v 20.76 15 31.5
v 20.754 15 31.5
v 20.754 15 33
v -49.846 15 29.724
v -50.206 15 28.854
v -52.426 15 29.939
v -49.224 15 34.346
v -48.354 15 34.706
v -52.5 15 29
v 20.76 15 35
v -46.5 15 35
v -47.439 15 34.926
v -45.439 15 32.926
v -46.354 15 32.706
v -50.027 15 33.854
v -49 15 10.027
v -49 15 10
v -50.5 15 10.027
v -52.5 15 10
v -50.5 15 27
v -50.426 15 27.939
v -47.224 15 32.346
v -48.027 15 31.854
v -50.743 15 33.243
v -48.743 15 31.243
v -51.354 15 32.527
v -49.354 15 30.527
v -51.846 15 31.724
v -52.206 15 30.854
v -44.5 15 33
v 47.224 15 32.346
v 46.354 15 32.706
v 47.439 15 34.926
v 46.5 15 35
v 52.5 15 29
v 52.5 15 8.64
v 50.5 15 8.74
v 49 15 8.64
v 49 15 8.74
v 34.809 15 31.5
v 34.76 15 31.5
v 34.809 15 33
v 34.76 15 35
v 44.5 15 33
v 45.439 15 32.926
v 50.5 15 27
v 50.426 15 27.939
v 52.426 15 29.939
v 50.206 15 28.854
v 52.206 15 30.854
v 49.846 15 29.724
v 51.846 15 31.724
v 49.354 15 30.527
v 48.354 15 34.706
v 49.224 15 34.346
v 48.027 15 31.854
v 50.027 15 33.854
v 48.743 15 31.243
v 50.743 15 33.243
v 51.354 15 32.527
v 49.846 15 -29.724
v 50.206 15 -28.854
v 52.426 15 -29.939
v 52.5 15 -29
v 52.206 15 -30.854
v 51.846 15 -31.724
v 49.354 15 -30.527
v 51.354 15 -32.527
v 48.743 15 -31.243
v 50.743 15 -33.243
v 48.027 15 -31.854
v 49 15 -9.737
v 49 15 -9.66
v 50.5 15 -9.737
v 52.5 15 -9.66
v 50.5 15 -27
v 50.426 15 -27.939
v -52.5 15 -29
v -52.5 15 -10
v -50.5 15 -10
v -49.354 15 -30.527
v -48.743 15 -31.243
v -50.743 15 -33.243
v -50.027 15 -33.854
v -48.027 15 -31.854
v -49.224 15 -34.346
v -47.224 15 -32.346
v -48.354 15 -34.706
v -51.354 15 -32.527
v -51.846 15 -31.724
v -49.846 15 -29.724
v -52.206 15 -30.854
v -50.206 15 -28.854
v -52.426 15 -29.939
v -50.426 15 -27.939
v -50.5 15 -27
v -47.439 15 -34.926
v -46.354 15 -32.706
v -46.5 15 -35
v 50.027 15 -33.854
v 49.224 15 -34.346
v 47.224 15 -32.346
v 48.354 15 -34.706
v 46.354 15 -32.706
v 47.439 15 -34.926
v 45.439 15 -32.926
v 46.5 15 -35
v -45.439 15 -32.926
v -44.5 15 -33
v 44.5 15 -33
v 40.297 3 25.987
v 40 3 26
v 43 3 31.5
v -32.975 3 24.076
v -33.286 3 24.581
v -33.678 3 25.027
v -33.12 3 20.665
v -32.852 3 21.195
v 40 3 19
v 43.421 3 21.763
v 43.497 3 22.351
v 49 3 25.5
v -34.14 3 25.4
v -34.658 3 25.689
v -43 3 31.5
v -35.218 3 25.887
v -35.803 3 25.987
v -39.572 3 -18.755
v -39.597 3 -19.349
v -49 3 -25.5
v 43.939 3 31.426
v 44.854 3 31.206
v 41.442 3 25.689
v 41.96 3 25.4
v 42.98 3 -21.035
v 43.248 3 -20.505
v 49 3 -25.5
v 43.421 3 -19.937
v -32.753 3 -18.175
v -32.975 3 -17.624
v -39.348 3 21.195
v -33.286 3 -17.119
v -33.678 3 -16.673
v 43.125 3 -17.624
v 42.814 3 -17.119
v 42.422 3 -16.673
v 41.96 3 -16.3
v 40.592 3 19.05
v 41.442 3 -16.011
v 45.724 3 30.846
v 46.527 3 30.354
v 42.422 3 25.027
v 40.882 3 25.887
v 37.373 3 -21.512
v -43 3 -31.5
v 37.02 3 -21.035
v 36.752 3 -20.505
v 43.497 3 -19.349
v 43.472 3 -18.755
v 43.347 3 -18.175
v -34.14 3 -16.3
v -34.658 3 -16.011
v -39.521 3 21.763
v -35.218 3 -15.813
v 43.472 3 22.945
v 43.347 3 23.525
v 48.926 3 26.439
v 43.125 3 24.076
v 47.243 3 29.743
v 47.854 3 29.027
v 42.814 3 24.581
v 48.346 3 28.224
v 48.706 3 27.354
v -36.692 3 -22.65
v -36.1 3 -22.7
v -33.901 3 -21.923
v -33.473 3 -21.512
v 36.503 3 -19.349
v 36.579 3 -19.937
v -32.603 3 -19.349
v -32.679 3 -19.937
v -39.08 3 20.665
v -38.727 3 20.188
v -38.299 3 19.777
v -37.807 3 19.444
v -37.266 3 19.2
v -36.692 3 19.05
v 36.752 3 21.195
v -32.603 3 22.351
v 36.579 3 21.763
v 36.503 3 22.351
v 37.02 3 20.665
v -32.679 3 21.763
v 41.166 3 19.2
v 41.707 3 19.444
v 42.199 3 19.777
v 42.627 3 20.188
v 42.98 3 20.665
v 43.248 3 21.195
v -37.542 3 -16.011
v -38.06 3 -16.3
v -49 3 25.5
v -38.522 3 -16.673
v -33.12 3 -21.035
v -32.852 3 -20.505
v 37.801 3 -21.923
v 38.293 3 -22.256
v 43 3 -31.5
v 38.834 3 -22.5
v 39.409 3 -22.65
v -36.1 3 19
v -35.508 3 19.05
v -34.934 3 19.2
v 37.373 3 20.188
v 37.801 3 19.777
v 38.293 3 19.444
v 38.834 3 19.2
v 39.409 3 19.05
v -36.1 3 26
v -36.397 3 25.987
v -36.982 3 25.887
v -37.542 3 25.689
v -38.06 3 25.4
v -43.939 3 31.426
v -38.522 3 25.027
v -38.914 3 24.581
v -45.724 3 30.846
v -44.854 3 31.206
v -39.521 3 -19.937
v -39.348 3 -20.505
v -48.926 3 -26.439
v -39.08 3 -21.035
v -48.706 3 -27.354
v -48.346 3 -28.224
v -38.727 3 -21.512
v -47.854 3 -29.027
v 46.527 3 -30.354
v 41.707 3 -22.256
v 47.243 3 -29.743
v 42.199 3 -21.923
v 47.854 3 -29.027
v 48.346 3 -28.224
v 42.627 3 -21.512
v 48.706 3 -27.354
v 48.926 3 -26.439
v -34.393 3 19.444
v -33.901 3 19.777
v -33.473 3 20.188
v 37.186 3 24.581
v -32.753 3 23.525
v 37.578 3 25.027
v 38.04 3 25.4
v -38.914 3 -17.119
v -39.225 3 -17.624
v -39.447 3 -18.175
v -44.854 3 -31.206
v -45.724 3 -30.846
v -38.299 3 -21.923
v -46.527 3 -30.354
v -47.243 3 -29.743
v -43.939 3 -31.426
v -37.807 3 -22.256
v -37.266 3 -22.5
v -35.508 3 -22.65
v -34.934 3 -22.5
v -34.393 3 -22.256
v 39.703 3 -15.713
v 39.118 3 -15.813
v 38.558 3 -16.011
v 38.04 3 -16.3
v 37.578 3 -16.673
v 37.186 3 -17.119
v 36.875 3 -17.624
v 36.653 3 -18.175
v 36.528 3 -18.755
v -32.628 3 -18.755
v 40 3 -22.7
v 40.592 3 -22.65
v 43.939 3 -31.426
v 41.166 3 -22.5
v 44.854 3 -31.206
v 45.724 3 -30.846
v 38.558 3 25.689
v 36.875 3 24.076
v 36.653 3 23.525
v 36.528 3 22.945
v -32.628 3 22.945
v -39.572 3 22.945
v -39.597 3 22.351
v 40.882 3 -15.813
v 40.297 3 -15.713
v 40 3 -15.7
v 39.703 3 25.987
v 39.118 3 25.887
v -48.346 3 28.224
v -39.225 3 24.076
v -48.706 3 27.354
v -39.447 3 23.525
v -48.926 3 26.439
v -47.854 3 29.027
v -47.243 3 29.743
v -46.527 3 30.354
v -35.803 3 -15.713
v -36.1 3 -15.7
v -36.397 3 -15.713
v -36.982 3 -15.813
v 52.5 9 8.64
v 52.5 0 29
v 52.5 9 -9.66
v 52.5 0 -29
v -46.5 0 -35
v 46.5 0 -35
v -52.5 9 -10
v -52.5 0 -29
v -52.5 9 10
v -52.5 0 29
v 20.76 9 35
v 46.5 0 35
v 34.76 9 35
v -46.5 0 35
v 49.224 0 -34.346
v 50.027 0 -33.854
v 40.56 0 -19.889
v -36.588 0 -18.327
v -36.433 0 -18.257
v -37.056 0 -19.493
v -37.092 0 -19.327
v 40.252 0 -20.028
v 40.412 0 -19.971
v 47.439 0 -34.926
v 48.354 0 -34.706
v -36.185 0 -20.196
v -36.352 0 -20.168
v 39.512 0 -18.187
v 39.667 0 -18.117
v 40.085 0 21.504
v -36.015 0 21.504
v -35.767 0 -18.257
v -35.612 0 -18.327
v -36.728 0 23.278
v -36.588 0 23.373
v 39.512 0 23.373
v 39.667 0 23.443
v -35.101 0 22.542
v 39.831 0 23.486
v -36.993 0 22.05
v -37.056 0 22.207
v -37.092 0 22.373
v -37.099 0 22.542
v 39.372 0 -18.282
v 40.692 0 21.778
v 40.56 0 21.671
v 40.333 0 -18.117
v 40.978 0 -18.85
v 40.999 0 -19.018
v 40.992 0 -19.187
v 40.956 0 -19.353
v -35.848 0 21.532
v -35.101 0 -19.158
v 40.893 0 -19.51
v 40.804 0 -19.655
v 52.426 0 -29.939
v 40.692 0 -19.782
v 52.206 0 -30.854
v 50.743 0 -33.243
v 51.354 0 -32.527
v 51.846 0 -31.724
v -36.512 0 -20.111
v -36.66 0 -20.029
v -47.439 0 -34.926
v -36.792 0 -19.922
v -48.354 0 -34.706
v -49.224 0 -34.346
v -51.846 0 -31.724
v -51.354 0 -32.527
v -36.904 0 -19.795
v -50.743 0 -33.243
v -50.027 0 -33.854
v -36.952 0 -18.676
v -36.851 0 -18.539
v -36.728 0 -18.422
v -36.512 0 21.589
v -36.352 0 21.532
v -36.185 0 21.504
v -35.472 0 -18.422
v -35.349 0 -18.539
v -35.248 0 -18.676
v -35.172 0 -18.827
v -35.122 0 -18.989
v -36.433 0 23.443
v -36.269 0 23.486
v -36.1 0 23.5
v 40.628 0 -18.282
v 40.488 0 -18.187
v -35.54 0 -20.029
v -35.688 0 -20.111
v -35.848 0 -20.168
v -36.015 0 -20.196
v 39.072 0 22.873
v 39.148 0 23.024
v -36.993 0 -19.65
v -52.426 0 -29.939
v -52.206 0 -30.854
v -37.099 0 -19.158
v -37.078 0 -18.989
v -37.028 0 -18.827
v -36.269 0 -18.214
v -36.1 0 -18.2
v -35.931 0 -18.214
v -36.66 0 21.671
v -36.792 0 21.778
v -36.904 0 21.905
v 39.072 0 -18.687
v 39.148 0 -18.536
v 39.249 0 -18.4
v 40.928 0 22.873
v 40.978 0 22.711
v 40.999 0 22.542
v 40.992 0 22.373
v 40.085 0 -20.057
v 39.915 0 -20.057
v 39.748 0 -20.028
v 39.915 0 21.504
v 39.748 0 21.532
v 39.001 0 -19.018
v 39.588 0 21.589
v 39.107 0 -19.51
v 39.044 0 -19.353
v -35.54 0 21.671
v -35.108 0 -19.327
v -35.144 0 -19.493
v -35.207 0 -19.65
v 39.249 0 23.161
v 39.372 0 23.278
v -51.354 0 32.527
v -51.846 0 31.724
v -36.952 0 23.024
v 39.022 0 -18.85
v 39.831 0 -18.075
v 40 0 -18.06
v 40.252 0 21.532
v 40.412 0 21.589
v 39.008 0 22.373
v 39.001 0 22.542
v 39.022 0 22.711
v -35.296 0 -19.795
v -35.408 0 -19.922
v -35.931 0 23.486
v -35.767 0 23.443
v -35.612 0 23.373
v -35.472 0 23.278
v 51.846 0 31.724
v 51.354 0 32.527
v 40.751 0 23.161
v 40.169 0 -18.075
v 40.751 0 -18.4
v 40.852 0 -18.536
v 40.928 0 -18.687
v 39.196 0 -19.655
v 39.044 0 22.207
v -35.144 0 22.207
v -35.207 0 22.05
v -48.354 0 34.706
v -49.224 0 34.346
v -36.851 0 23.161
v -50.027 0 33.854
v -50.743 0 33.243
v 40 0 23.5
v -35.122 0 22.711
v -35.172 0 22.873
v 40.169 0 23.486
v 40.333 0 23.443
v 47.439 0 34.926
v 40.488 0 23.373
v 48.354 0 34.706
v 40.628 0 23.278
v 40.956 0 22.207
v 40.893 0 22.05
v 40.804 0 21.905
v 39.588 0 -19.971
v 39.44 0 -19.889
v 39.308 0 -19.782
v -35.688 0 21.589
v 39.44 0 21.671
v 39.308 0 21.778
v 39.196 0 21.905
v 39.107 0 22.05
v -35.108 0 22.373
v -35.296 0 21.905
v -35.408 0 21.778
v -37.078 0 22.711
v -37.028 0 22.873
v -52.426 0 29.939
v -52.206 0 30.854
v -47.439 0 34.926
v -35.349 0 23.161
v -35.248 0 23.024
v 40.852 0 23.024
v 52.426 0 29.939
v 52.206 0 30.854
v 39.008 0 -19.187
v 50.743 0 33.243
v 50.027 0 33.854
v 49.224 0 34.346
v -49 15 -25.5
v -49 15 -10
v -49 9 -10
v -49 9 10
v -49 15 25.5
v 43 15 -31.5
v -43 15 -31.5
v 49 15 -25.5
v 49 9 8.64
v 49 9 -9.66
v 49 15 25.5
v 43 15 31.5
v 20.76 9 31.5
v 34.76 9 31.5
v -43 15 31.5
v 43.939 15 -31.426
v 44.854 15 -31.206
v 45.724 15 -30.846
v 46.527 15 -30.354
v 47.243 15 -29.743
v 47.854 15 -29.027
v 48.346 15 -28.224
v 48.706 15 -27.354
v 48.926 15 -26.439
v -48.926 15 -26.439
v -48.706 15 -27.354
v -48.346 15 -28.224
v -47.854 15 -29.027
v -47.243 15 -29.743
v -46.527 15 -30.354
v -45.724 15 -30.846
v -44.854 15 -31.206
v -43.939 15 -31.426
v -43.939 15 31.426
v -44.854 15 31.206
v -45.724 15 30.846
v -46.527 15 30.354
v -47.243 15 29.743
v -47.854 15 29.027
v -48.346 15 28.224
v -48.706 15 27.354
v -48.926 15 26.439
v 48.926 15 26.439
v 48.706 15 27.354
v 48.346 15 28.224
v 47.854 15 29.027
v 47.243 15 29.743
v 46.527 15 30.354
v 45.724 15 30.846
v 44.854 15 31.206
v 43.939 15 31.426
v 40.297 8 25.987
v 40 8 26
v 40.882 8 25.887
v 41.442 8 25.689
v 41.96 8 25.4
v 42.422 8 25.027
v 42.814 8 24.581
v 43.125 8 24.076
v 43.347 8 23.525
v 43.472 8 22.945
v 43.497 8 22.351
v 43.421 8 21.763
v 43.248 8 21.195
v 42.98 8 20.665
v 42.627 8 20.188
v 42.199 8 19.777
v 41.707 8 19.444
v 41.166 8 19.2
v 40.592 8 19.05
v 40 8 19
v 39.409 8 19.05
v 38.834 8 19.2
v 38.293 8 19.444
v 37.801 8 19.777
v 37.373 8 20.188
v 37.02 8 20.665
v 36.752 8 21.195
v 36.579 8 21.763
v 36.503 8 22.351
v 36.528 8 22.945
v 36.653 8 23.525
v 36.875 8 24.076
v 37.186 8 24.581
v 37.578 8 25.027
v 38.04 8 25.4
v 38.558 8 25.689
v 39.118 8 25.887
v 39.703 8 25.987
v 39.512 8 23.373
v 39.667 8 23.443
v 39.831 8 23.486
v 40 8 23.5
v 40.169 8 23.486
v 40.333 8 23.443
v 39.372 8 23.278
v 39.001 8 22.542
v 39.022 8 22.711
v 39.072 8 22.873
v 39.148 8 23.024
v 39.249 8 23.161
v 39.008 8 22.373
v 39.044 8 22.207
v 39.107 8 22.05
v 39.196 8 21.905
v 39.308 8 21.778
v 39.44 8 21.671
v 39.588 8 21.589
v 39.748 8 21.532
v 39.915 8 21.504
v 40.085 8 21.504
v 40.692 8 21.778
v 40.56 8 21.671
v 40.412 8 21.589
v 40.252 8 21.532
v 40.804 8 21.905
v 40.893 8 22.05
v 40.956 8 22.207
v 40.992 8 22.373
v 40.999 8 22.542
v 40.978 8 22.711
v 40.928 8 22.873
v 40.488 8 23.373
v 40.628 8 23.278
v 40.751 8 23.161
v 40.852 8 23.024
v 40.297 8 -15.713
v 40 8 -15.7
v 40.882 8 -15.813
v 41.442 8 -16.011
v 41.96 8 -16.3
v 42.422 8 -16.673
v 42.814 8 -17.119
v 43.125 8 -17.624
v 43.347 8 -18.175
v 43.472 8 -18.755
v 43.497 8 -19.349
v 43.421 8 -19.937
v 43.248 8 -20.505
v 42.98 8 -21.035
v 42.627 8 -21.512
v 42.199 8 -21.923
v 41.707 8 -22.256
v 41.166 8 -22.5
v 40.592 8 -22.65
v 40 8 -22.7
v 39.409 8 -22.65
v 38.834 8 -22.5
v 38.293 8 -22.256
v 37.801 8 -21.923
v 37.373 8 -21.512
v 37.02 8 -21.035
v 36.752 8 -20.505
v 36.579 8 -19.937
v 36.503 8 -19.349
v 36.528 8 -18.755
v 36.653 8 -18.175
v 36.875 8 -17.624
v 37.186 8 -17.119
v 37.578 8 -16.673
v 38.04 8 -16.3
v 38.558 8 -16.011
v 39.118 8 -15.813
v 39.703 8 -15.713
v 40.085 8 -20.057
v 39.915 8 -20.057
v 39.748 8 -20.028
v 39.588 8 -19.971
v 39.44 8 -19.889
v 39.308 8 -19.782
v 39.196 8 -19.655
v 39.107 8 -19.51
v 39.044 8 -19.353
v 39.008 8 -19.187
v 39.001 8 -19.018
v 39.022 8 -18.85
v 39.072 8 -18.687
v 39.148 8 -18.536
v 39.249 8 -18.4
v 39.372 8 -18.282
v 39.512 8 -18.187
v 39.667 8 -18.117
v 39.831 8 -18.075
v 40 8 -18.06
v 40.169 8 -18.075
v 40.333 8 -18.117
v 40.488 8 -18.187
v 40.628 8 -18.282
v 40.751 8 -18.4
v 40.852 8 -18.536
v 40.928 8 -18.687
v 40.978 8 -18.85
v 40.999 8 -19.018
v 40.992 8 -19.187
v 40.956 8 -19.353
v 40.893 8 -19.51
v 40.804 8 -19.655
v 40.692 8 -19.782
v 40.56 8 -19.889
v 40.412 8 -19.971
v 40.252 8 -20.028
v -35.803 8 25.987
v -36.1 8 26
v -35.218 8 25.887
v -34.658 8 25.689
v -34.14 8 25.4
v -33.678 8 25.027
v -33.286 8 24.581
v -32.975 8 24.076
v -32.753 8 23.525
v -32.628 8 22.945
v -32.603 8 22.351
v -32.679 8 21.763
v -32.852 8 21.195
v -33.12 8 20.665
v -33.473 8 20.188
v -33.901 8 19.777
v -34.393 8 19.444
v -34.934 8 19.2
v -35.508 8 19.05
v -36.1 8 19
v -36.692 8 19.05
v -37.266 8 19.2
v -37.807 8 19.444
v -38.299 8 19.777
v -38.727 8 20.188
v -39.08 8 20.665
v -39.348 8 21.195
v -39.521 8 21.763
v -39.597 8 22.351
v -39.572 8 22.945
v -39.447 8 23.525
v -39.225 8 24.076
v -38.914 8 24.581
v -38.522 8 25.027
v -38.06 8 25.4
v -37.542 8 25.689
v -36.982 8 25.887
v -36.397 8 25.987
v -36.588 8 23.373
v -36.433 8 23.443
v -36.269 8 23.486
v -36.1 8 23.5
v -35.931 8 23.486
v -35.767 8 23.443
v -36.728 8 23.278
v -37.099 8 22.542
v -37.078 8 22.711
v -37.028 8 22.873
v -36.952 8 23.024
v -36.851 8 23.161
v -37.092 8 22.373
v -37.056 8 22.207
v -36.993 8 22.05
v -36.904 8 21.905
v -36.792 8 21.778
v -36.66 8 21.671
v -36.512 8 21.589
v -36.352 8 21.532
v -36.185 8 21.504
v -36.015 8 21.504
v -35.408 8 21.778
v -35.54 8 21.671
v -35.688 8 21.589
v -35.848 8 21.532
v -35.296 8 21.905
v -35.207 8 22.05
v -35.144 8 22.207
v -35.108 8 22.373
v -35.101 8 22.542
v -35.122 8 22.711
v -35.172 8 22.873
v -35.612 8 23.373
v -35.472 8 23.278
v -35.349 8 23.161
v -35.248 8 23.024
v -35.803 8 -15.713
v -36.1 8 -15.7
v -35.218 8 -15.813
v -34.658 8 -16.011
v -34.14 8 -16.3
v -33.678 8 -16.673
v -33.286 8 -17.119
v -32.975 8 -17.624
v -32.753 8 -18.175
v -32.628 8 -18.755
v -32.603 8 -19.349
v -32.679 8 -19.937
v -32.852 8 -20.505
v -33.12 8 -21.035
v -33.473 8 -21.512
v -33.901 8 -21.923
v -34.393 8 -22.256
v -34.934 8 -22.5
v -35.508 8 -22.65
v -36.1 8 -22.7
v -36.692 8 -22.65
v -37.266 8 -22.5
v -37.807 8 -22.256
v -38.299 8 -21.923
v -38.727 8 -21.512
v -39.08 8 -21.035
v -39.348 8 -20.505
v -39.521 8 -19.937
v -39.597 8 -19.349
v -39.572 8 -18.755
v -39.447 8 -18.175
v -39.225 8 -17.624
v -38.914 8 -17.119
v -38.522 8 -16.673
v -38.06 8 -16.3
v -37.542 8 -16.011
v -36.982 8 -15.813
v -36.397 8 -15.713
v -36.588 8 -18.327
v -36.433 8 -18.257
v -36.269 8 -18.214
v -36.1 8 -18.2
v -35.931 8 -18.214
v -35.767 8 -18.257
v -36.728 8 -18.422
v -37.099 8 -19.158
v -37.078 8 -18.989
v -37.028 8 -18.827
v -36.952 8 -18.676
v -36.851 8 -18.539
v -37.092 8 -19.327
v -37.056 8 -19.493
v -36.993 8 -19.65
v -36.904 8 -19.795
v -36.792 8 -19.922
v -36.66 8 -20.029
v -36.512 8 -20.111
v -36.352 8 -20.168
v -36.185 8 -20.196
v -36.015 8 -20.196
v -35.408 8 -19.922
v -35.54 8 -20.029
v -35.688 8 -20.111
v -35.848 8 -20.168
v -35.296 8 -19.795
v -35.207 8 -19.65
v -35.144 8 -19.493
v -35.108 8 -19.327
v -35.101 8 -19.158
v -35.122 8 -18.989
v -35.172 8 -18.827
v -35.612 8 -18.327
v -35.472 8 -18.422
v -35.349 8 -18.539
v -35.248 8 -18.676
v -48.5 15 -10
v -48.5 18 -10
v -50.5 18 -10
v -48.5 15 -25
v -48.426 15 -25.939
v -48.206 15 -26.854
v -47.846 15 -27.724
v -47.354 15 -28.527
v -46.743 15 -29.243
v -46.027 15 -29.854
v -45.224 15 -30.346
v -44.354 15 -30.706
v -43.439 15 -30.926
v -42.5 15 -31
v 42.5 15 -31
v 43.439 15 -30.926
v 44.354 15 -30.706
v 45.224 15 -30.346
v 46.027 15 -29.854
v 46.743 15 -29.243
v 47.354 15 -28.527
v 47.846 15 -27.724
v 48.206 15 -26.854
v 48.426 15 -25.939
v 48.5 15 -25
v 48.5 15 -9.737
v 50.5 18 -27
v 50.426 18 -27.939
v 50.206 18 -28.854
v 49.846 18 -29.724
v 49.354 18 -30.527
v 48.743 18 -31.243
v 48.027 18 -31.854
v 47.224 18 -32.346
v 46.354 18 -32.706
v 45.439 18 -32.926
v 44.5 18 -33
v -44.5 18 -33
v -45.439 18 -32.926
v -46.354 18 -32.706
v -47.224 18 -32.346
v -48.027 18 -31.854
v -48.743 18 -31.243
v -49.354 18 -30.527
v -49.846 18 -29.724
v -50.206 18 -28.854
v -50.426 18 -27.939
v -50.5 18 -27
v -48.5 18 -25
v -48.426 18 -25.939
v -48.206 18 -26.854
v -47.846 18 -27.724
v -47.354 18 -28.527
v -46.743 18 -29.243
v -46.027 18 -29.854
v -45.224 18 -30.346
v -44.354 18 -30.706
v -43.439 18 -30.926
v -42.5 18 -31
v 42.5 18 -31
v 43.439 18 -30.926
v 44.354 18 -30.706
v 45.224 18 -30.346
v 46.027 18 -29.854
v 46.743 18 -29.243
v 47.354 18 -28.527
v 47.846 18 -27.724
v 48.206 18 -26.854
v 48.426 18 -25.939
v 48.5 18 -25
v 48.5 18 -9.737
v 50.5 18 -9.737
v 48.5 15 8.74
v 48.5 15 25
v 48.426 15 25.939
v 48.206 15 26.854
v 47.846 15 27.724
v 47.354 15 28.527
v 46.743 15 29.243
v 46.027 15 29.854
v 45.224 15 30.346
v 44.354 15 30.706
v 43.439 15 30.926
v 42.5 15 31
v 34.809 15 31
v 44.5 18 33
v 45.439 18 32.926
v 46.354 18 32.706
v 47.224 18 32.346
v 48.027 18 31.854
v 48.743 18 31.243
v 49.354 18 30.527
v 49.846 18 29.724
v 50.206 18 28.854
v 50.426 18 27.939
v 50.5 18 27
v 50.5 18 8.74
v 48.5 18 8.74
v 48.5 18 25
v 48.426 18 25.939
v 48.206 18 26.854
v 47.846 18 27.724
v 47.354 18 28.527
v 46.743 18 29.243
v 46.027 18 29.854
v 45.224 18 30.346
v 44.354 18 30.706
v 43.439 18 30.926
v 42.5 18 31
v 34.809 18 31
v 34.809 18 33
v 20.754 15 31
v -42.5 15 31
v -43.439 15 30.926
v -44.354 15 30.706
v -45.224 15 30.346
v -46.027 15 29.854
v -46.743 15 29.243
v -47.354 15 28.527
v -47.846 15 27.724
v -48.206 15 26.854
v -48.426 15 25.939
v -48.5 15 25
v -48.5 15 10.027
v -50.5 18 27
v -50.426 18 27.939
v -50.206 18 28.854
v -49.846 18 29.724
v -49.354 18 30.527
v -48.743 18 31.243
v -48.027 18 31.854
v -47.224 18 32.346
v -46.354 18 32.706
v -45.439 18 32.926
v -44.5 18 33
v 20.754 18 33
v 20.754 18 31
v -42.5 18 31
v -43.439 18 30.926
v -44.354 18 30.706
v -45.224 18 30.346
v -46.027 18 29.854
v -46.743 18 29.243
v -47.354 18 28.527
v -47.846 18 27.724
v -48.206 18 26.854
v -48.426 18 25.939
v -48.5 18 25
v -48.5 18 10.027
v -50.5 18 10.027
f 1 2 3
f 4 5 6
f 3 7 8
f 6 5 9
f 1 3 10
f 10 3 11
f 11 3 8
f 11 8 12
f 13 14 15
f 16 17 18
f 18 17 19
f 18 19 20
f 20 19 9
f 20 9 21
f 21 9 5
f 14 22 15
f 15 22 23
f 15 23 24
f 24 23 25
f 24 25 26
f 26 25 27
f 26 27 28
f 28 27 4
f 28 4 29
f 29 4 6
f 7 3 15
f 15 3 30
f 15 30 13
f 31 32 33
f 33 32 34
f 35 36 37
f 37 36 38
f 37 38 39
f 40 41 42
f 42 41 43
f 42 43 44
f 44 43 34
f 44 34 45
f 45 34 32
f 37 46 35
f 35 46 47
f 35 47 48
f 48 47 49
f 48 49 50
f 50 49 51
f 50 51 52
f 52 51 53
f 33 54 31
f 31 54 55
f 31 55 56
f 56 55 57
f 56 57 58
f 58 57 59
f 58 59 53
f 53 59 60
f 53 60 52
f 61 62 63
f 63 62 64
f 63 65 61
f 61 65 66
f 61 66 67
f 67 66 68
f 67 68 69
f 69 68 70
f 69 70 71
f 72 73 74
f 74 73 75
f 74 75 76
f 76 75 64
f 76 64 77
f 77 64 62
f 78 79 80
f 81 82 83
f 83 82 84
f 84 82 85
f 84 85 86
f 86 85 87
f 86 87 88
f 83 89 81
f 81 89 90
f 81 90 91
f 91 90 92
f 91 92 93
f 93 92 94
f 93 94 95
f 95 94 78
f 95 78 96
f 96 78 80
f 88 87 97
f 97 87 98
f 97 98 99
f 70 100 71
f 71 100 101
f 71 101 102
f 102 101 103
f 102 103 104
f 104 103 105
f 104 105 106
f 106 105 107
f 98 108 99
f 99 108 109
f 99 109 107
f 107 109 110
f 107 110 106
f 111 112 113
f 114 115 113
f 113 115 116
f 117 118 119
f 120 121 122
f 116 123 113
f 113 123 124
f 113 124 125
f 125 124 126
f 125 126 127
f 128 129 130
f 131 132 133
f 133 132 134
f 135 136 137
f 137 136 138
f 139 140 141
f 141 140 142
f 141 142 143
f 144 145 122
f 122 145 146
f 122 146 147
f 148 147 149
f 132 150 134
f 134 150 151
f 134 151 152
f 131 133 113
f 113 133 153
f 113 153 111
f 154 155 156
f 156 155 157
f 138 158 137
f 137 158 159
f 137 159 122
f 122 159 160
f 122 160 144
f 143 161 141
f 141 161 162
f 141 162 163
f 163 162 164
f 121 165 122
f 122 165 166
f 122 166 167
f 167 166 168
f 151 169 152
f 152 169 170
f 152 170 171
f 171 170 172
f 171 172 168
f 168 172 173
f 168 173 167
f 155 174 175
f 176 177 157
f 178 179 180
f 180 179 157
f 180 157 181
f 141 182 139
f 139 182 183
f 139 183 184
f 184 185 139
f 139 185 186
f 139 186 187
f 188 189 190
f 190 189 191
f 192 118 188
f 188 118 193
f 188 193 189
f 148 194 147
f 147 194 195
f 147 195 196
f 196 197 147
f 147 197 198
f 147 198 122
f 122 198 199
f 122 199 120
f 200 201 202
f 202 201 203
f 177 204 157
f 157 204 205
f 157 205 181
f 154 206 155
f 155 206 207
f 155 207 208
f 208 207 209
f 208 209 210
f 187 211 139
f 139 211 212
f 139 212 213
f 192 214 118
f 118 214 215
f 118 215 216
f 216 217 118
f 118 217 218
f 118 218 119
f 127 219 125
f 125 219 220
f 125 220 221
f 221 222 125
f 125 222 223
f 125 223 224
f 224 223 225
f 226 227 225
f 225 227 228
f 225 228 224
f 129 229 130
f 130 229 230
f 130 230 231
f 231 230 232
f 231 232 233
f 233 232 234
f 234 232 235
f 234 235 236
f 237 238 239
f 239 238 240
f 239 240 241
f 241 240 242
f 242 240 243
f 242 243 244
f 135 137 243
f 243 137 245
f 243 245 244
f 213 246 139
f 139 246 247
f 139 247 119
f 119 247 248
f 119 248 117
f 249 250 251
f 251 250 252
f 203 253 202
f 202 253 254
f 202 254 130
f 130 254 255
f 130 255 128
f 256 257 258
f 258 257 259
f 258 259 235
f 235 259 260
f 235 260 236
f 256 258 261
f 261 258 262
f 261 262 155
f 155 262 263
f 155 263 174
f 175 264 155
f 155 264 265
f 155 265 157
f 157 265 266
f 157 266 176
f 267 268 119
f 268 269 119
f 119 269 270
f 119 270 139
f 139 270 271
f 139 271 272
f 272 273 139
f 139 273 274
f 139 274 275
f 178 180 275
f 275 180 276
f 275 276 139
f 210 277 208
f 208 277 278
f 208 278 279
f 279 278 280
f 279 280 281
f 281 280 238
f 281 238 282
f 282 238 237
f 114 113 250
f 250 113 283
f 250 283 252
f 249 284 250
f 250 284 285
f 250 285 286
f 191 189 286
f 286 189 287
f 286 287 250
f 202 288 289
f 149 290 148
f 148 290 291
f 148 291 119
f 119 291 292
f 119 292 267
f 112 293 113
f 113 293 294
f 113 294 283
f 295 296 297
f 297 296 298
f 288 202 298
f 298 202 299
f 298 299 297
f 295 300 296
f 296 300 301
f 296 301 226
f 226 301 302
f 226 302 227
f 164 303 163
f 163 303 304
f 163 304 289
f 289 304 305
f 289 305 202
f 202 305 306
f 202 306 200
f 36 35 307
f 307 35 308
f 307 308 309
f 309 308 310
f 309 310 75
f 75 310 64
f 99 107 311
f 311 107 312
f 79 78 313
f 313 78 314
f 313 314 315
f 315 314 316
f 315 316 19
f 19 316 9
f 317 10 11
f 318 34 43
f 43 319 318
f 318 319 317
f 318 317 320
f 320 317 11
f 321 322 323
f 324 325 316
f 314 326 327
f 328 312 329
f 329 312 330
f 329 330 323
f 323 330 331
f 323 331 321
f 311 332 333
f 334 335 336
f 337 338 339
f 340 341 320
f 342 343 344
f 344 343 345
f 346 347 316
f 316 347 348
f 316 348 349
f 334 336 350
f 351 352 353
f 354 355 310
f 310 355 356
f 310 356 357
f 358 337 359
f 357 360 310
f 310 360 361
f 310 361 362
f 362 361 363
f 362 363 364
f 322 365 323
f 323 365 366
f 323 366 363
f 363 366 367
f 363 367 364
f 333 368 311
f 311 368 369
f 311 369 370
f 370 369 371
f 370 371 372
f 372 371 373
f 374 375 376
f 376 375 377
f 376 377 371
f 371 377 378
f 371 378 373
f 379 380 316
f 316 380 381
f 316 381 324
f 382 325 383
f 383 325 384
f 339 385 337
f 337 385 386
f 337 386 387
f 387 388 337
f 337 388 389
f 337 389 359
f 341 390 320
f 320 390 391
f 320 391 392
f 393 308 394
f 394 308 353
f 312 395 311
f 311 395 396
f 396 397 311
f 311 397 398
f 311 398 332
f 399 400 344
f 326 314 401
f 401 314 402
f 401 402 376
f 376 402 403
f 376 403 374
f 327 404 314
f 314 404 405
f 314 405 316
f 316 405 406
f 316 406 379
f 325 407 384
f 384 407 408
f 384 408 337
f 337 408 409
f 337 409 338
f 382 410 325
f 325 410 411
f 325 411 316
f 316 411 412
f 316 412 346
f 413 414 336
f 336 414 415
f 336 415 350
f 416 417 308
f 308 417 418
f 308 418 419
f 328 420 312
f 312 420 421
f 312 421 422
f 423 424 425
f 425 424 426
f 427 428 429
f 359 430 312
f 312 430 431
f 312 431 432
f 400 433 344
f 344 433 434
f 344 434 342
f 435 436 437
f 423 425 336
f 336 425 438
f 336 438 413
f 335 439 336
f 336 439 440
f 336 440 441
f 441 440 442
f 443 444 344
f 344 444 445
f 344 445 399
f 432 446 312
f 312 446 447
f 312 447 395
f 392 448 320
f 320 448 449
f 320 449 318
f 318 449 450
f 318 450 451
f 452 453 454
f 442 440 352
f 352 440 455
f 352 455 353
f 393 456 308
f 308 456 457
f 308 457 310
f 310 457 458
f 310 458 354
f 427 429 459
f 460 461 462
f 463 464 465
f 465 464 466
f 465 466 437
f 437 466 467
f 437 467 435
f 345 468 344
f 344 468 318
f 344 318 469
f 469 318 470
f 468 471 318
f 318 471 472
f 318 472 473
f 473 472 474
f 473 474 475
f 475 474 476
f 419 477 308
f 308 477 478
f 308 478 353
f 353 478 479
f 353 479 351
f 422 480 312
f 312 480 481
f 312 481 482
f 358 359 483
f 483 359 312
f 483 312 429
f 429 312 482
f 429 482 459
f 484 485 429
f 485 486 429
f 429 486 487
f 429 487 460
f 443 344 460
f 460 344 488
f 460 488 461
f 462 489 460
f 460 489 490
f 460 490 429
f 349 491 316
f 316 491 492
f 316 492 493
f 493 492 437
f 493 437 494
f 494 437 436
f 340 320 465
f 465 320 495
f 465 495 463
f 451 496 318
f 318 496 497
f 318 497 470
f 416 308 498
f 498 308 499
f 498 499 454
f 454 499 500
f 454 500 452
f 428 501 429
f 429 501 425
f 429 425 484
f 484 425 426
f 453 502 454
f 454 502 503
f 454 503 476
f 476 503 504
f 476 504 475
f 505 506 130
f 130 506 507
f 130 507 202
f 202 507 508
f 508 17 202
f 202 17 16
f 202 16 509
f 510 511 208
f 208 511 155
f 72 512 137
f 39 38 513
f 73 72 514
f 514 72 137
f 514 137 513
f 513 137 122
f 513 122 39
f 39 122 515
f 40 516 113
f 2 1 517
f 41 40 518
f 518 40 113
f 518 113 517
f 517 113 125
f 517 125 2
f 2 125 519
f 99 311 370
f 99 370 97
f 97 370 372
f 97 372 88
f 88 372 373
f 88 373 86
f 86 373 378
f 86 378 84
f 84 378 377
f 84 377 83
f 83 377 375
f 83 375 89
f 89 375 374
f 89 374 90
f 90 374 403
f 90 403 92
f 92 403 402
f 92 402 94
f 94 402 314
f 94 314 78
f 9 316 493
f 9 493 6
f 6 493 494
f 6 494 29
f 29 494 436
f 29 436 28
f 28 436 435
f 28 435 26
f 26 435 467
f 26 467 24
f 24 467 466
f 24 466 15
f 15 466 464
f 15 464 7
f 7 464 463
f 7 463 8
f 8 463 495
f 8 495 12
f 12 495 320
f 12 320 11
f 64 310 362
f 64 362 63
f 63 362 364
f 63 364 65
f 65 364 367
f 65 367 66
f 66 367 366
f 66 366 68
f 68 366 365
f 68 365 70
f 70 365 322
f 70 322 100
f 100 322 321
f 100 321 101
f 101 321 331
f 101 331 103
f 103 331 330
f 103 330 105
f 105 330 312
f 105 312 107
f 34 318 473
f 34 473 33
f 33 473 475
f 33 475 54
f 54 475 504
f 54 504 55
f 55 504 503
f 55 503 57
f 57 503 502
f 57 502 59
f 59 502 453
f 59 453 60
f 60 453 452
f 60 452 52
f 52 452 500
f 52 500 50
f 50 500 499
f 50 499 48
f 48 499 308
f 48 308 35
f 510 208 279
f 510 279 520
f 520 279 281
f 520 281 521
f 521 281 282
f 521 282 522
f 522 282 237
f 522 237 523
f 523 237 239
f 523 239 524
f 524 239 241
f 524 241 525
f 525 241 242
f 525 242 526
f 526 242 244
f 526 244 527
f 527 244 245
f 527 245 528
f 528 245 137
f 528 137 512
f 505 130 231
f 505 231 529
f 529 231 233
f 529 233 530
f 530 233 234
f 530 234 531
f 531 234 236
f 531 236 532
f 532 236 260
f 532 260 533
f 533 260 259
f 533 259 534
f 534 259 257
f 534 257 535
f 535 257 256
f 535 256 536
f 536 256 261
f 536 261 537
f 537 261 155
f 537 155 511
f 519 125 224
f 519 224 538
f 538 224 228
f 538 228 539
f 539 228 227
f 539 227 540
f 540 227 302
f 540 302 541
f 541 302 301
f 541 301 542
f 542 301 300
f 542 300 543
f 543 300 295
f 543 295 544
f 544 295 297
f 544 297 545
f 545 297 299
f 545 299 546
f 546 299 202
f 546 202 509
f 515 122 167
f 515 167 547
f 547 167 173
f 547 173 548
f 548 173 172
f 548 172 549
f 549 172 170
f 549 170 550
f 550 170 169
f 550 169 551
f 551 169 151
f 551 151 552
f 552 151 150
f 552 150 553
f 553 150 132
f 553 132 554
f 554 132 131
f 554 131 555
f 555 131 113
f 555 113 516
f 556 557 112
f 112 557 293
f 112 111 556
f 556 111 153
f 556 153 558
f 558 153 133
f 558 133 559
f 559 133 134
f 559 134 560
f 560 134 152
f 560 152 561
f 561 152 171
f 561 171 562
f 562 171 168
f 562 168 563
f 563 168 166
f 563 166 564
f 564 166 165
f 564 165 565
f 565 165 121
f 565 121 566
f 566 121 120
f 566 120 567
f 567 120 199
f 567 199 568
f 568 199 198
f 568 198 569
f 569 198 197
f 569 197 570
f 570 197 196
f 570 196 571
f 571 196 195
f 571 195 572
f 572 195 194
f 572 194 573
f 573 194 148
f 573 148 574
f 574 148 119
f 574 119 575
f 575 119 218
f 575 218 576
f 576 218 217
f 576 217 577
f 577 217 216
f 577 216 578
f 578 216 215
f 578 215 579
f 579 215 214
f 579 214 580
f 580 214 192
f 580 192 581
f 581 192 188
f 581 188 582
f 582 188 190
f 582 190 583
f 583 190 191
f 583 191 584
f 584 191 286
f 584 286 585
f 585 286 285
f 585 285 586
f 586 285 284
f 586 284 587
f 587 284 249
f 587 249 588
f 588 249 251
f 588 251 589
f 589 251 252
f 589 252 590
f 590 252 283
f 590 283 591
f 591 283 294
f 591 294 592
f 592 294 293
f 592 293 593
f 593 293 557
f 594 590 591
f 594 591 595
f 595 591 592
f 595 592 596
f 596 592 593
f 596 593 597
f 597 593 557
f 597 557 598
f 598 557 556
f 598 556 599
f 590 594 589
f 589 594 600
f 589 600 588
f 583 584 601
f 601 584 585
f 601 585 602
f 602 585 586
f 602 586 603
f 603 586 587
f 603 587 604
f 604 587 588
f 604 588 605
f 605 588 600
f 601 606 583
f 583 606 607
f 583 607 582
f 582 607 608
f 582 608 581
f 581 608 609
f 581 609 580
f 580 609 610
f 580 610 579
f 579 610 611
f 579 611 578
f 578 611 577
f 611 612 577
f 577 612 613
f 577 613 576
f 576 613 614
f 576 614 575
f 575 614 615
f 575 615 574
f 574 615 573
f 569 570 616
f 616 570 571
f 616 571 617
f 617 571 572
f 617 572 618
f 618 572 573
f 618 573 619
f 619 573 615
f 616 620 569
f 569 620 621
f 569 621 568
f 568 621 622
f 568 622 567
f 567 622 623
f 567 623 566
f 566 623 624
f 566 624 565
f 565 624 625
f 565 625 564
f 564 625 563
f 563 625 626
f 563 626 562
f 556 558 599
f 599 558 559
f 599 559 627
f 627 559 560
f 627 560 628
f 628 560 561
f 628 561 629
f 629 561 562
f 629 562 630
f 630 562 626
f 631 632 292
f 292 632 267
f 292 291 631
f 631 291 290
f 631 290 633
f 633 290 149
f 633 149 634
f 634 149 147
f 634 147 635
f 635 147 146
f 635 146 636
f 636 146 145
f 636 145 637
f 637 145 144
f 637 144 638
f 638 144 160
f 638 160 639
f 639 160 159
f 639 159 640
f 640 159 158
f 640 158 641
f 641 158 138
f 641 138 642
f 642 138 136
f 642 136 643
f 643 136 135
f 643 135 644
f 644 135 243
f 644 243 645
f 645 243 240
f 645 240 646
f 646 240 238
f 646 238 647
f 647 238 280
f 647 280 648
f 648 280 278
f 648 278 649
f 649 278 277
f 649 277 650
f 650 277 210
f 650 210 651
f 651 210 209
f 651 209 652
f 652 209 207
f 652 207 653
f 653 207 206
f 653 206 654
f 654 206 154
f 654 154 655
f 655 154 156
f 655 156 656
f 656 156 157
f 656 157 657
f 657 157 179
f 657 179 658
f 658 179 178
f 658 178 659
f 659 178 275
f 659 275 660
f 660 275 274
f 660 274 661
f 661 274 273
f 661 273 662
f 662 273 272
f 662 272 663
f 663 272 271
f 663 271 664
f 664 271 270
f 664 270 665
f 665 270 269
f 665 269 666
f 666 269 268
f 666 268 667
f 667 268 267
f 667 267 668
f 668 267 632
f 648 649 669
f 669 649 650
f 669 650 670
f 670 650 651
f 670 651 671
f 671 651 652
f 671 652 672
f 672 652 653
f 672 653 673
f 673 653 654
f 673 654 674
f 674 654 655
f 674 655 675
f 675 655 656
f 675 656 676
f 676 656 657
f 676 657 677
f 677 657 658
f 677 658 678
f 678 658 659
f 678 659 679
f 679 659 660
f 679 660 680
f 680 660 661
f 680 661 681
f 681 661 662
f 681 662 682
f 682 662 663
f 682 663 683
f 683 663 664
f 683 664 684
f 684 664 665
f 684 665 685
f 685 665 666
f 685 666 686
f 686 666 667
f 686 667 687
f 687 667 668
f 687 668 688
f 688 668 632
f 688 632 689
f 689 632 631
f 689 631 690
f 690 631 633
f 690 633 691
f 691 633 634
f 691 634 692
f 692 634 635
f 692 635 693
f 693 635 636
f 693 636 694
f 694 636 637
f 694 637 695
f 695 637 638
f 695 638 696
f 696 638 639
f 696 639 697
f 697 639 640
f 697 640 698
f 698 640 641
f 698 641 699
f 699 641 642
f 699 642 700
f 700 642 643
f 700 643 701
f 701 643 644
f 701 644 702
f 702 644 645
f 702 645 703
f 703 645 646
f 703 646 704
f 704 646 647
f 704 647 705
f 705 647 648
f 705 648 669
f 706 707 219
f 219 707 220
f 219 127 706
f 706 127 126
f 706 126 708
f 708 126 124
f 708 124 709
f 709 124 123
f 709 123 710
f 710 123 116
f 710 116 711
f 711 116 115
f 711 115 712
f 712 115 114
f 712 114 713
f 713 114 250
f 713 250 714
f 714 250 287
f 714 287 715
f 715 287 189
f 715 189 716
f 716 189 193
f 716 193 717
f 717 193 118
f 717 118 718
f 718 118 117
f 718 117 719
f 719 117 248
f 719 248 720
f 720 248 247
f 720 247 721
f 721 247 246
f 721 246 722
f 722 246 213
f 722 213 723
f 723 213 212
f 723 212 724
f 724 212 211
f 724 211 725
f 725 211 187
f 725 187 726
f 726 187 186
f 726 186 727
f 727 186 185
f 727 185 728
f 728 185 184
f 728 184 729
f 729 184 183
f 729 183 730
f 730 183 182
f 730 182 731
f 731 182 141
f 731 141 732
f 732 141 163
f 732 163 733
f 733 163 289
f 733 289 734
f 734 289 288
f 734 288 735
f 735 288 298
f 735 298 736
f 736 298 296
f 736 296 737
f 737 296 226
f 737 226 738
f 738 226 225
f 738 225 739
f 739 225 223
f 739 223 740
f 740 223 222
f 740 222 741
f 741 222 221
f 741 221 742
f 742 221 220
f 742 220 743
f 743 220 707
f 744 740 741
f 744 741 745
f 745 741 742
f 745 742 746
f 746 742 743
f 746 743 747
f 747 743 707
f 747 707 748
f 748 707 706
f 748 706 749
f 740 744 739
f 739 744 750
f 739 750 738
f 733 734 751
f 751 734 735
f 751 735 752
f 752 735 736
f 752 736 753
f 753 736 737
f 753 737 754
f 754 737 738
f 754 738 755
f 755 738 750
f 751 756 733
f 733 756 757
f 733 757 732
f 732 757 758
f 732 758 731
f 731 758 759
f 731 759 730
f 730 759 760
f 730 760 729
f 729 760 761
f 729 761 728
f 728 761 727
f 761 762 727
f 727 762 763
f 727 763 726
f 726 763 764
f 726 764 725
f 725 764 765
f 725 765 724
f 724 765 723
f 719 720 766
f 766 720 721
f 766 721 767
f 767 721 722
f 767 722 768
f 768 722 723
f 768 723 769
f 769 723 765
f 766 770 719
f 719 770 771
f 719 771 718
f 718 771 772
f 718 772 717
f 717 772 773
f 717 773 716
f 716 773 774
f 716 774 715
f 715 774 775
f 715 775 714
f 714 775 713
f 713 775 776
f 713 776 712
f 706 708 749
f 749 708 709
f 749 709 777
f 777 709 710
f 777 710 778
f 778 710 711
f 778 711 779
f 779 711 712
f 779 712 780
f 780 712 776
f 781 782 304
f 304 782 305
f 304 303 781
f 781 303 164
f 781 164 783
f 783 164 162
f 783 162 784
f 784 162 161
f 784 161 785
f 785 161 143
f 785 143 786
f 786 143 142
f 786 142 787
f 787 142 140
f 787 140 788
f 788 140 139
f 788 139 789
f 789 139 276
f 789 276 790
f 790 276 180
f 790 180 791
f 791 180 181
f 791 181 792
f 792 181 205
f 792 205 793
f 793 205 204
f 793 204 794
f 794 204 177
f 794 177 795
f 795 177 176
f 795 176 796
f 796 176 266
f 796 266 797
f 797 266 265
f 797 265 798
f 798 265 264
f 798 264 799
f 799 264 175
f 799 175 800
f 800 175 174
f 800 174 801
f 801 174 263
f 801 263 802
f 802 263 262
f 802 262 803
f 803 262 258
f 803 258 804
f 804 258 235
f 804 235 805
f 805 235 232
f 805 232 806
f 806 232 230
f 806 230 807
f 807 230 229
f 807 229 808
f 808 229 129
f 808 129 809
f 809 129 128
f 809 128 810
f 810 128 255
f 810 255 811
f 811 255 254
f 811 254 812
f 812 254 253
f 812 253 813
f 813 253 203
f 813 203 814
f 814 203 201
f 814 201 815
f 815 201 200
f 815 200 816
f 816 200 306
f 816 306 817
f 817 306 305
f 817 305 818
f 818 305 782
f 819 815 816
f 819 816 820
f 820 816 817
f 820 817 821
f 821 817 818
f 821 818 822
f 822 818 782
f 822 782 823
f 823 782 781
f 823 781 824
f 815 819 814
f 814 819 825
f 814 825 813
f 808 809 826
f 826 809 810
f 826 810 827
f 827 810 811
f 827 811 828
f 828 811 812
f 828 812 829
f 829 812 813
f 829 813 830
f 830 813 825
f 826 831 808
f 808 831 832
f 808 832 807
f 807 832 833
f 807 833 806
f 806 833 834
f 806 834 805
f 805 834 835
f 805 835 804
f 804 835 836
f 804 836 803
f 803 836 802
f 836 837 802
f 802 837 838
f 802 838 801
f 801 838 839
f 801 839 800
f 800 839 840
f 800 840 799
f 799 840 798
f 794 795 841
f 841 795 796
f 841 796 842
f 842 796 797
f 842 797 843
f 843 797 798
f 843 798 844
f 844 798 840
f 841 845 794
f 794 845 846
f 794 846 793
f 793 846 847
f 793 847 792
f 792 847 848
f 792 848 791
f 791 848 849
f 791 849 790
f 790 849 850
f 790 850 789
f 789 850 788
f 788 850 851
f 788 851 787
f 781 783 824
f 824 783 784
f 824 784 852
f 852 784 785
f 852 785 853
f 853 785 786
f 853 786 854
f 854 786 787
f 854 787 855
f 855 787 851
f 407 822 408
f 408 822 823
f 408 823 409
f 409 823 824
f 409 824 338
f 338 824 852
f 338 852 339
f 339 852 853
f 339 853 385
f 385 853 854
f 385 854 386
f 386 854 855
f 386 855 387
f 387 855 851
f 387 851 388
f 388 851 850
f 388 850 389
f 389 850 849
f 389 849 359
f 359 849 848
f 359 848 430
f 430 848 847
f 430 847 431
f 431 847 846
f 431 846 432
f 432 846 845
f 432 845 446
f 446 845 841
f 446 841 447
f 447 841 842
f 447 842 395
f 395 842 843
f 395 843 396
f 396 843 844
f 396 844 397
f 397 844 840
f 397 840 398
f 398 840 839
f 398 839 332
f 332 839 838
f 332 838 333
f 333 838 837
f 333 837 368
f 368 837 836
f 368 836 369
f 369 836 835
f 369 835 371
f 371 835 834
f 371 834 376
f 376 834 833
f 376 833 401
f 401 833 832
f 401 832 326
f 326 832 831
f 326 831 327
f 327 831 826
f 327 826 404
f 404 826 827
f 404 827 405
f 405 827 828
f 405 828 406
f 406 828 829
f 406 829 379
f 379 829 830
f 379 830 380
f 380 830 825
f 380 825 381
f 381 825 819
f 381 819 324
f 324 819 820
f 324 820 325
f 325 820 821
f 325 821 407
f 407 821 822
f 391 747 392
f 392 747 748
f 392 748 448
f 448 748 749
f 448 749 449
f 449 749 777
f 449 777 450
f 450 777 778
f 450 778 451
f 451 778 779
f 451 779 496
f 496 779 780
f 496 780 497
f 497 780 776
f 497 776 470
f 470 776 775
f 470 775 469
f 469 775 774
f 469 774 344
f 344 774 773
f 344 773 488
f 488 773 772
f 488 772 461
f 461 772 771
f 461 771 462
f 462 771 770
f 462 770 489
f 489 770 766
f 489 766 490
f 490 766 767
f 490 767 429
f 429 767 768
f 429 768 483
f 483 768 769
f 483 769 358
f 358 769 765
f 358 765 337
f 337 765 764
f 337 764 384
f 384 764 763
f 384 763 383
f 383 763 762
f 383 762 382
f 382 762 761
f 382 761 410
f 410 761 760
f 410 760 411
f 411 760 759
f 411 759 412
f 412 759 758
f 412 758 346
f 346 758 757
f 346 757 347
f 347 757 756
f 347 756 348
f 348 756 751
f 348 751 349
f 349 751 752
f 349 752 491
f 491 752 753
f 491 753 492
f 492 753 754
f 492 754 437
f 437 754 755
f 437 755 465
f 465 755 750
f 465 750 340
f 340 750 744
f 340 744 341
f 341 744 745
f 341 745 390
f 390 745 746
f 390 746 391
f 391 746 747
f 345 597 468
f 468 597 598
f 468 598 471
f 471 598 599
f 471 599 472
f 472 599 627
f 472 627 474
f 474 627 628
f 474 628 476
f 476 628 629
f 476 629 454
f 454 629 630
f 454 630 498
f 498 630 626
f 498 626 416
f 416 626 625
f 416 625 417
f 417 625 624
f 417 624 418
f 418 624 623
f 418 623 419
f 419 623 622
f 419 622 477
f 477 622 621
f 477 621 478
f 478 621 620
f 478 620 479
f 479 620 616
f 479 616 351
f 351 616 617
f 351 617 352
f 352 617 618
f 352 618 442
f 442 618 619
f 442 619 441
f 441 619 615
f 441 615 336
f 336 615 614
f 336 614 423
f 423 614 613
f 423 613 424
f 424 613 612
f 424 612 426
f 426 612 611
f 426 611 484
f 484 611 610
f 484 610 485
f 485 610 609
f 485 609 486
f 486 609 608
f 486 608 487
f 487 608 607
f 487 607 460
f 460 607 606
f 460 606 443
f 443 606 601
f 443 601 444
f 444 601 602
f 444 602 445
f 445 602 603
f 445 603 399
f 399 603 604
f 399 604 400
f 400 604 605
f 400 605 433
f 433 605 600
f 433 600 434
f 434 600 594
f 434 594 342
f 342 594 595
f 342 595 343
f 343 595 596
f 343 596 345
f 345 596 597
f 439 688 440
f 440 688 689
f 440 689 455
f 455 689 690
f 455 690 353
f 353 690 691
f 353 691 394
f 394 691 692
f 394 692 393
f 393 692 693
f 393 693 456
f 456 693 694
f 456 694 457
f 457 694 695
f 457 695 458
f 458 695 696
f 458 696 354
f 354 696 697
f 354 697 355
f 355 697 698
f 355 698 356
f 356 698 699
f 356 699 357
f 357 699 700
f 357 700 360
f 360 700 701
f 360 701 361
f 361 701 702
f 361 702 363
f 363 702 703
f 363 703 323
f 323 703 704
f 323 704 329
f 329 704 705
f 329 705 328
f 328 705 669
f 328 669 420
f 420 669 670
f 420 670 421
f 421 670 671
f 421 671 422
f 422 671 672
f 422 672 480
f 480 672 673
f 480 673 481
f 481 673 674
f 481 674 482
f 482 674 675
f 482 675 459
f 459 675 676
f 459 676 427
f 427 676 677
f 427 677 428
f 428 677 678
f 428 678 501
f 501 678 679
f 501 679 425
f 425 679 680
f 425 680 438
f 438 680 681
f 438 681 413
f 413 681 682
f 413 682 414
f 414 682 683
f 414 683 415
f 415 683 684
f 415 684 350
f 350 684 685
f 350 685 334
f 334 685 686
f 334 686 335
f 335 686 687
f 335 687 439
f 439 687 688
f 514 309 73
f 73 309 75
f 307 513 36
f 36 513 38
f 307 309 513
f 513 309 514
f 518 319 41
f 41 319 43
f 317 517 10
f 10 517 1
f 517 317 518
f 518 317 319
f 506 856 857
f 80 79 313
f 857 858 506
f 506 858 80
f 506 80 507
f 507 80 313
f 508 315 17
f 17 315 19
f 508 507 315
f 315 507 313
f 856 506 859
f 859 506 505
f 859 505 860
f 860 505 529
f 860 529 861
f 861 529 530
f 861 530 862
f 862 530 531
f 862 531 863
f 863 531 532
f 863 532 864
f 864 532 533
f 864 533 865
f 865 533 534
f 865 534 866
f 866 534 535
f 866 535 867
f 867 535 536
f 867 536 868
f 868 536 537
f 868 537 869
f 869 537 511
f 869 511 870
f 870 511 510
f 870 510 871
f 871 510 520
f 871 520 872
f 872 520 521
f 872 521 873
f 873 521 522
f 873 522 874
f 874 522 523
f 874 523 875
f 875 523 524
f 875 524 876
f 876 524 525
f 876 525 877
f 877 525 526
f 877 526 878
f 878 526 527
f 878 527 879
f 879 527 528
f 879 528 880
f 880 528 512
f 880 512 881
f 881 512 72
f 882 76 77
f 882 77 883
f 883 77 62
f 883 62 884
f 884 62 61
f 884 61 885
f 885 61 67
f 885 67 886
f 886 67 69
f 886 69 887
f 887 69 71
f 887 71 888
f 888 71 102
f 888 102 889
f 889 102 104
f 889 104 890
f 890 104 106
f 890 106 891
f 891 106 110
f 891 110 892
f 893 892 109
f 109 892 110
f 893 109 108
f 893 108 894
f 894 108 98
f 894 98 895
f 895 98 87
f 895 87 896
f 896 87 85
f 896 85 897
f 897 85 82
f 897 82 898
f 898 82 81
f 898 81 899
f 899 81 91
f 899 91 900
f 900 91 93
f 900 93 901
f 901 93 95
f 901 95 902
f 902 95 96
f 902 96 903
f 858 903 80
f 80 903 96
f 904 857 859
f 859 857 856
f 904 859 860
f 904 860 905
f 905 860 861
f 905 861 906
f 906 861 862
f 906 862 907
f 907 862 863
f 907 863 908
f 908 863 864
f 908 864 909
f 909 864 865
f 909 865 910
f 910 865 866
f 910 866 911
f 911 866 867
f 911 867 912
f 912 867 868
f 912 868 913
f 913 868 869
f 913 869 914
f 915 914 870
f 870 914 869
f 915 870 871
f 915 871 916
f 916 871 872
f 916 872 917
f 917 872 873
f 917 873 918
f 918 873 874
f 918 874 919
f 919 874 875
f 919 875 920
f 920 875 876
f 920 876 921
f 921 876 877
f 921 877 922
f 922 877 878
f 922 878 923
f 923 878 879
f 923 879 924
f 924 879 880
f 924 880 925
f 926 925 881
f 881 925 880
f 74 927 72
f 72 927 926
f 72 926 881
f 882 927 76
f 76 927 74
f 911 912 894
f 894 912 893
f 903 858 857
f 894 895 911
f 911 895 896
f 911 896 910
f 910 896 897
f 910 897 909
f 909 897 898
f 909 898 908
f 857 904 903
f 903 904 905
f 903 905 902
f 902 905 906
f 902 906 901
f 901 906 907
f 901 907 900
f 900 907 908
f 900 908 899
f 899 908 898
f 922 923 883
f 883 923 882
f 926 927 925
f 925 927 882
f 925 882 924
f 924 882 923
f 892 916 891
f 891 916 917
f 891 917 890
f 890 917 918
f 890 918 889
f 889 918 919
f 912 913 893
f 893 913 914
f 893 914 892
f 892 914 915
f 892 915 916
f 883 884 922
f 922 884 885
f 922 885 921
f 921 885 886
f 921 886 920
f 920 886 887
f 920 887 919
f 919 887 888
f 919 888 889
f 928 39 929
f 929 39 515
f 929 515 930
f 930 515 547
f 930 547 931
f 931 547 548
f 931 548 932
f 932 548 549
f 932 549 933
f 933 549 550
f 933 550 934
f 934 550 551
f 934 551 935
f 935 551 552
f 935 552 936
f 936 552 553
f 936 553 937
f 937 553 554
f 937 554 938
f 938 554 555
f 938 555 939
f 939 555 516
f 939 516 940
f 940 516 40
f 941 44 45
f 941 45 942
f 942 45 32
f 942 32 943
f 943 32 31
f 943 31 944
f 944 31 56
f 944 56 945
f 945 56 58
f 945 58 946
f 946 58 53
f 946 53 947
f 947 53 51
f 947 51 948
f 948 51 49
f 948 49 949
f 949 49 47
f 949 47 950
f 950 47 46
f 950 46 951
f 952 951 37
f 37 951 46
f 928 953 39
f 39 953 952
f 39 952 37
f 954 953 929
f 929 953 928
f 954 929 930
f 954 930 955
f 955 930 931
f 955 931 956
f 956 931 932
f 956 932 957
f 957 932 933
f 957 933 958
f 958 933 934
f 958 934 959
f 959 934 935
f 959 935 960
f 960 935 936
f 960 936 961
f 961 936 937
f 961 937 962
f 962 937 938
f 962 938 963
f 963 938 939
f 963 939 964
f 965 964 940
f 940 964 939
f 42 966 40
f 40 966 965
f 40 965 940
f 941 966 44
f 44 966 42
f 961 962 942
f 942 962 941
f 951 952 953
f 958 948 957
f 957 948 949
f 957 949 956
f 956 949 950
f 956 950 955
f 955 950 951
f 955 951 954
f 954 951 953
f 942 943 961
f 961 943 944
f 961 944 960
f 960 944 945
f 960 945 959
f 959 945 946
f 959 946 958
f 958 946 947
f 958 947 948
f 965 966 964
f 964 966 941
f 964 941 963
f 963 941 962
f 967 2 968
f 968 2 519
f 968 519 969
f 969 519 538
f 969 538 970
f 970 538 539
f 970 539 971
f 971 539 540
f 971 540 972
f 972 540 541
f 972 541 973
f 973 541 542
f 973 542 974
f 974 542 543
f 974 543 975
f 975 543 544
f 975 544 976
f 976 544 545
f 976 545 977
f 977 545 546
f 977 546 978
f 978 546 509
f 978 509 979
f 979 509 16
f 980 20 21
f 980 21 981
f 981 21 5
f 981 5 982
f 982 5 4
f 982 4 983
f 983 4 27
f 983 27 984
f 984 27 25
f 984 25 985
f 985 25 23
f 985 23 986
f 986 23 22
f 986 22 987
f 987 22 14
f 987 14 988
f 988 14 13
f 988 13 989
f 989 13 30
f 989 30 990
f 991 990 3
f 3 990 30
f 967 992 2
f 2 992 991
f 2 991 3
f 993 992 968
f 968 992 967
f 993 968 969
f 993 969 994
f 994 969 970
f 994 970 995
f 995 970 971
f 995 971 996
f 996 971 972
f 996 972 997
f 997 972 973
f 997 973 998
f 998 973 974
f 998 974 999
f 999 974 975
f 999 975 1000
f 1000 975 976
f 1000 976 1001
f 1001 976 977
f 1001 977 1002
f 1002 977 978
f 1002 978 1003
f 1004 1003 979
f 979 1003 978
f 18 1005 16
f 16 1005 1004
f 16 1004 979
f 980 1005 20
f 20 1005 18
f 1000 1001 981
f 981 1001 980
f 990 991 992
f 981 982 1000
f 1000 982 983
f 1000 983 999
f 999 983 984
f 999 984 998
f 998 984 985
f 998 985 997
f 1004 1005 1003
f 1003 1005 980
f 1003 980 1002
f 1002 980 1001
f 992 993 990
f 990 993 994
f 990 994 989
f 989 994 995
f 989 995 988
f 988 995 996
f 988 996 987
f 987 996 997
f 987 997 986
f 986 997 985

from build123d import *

# Parameters (mm, degrees)
SKETCH1_W           = 105
SKETCH1_H           = 70
BOSS_EXTRUDE1_DEPTH = 15
SKETCH3_W           = 98
SKETCH3_H           = 63
CUT_EXTRUDE1_DEPTH  = 12
FILLET1_R           = 6
SKETCH4_R           = 3.5
BOSS_EXTRUDE2_DEPTH = 5
SKETCH5_R           = 1
CUT_EXTRUDE2_DEPTH  = 8
SKETCH6_W           = 3.5
SKETCH6_H           = 18.3
SKETCH6_W_2         = 14
SKETCH6_H_2         = 3.5
SKETCH6_H_3         = 20
CUT_EXTRUDE3_DEPTH  = 6
BOSS_EXTRUDE3_DEPTH = 3


with BuildPart() as part:
    # Sketch1 → Boss-Extrude1 (new body)
    with BuildSketch(Plane(origin=(0, 0, 0), x_dir=(1, 0, 0), z_dir=(0, 1, 0))):
        Rectangle(SKETCH1_W, SKETCH1_H)
    extrude(amount=BOSS_EXTRUDE1_DEPTH)

    # Sketch3 → Cut-Extrude1 (cut)
    with BuildSketch(Plane(origin=(0, 15, 0), x_dir=(1, 0, 0), z_dir=(0, 1, 0))):
        Rectangle(SKETCH3_W, SKETCH3_H)
    extrude(amount=-CUT_EXTRUDE1_DEPTH, mode=Mode.SUBTRACT)

    # Fillet1
    fillet1_edges = [part.edges().sort_by_distance(p)[0] for p in [
        (-49, 9, 31.5),
        (-49, 9, -31.5),
        (49, 9, -31.5),
        (49, 9, 31.5),
        (52.5, 7.5, 35),
        (-52.5, 7.5, 35),
        (-52.5, 7.5, -35),
        (52.5, 7.5, -35),
    ]]
    fillet(fillet1_edges, radius=FILLET1_R)

    # Sketch4 → Boss-Extrude2 (add)
    with BuildSketch(Plane(origin=(0, 3, 0), x_dir=(1, 0, 0), z_dir=(0, 1, 0))):
        with Locations(Location((40, -22.5, 0), (0, 0, 270))):
            Circle(SKETCH4_R)
        with Locations(Location((40, 19.2, 0), (0, 0, 270))):
            Circle(SKETCH4_R)
        with Locations(Location((-36.1, -22.5, 0), (0, 0, 270))):
            Circle(SKETCH4_R)
        with Locations(Location((-36.1, 19.2, 0), (0, 0, 270))):
            Circle(SKETCH4_R)
    extrude(amount=BOSS_EXTRUDE2_DEPTH)

    # Sketch5 → Cut-Extrude2 (cut)
    with BuildSketch(Plane(origin=(0, 8, 0), x_dir=(1, 0, 0), z_dir=(0, 1, 0))):
        with Locations(Location((-36.1, 19.2, 0), (0, 0, 270))):
            Circle(SKETCH5_R)
        with Locations(Location((-36.1, -22.5, 0), (0, 0, 270))):
            Circle(SKETCH5_R)
        with Locations(Location((40, -22.5, 0), (0, 0, 270))):
            Circle(SKETCH5_R)
        with Locations(Location((40, 19.06026255, 0), (0, 0, 270))):
            Circle(SKETCH5_R)
    extrude(amount=-CUT_EXTRUDE2_DEPTH, mode=Mode.SUBTRACT)

    # Sketch6 → Cut-Extrude3 (cut)
    with BuildSketch(Plane(origin=(0, 15, 0), x_dir=(1, 0, 0), z_dir=(0, 1, 0))):
        with Locations((50.75, 0.51)):
            Rectangle(SKETCH6_W, SKETCH6_H)
        with Locations((27.76, -33.25)):
            Rectangle(SKETCH6_W_2, SKETCH6_H_2)
        with Locations((-50.75, 0)):
            Rectangle(SKETCH6_W, SKETCH6_H_3)
    extrude(amount=-CUT_EXTRUDE3_DEPTH, mode=Mode.SUBTRACT)

    # Sketch7 → Boss-Extrude3 (add)
    with BuildSketch(Plane(origin=(0, 15, 0), x_dir=(1, 0, 0), z_dir=(0, 1, 0))):
        with BuildLine():
            Line((-44.5, 33), (44.5, 33))
            ThreePointArc((44.5, 33), (48.742640687, 31.242640687), (50.5, 27))
            Line((50.5, 27), (50.5, 9.736559035))
            Line((50.5, 9.736559035), (48.5, 9.736559035))
            Line((48.5, 9.736559035), (48.5, 25))
            ThreePointArc((48.5, 25), (46.742640687, 29.242640687), (42.5, 31))
            Line((42.5, 31), (-42.5, 31))
            ThreePointArc((-42.5, 31), (-46.742640687, 29.242640687), (-48.5, 25))
            Line((-48.5, 25), (-48.5, 10))
            Line((-48.5, 10), (-50.5, 10))
            Line((-50.5, 10), (-50.5, 27))
            ThreePointArc((-50.5, 27), (-48.742640687, 31.242640687), (-44.5, 33))
        make_face()
        with BuildLine():
            Line((-44.5, -33), (20.754470261, -33))
            Line((20.754470261, -33), (20.754470261, -31))
            Line((20.754470261, -31), (-42.5, -31))
            ThreePointArc((-42.5, -31), (-46.742640687, -29.242640687), (-48.5, -25))
            Line((-48.5, -25), (-48.5, -10.02702289))
            Line((-48.5, -10.02702289), (-50.5, -10.02702289))
            Line((-50.5, -10.02702289), (-50.5, -27))
            ThreePointArc((-50.5, -27), (-48.742640687, -31.242640687), (-44.5, -33))
        make_face()
        with BuildLine():
            Line((50.5, -8.739580153), (50.5, -27))
            ThreePointArc((50.5, -27), (48.742640687, -31.242640687), (44.5, -33))
            Line((44.5, -33), (34.809182833, -33))
            Line((34.809182833, -33), (34.809182833, -31))
            Line((34.809182833, -31), (42.5, -31))
            ThreePointArc((42.5, -31), (46.742640687, -29.242640687), (48.5, -25))
            Line((48.5, -25), (48.5, -8.739580153))
            Line((48.5, -8.739580153), (50.5, -8.739580153))
        make_face()
    extrude(amount=BOSS_EXTRUDE3_DEPTH)


solid = part.part
